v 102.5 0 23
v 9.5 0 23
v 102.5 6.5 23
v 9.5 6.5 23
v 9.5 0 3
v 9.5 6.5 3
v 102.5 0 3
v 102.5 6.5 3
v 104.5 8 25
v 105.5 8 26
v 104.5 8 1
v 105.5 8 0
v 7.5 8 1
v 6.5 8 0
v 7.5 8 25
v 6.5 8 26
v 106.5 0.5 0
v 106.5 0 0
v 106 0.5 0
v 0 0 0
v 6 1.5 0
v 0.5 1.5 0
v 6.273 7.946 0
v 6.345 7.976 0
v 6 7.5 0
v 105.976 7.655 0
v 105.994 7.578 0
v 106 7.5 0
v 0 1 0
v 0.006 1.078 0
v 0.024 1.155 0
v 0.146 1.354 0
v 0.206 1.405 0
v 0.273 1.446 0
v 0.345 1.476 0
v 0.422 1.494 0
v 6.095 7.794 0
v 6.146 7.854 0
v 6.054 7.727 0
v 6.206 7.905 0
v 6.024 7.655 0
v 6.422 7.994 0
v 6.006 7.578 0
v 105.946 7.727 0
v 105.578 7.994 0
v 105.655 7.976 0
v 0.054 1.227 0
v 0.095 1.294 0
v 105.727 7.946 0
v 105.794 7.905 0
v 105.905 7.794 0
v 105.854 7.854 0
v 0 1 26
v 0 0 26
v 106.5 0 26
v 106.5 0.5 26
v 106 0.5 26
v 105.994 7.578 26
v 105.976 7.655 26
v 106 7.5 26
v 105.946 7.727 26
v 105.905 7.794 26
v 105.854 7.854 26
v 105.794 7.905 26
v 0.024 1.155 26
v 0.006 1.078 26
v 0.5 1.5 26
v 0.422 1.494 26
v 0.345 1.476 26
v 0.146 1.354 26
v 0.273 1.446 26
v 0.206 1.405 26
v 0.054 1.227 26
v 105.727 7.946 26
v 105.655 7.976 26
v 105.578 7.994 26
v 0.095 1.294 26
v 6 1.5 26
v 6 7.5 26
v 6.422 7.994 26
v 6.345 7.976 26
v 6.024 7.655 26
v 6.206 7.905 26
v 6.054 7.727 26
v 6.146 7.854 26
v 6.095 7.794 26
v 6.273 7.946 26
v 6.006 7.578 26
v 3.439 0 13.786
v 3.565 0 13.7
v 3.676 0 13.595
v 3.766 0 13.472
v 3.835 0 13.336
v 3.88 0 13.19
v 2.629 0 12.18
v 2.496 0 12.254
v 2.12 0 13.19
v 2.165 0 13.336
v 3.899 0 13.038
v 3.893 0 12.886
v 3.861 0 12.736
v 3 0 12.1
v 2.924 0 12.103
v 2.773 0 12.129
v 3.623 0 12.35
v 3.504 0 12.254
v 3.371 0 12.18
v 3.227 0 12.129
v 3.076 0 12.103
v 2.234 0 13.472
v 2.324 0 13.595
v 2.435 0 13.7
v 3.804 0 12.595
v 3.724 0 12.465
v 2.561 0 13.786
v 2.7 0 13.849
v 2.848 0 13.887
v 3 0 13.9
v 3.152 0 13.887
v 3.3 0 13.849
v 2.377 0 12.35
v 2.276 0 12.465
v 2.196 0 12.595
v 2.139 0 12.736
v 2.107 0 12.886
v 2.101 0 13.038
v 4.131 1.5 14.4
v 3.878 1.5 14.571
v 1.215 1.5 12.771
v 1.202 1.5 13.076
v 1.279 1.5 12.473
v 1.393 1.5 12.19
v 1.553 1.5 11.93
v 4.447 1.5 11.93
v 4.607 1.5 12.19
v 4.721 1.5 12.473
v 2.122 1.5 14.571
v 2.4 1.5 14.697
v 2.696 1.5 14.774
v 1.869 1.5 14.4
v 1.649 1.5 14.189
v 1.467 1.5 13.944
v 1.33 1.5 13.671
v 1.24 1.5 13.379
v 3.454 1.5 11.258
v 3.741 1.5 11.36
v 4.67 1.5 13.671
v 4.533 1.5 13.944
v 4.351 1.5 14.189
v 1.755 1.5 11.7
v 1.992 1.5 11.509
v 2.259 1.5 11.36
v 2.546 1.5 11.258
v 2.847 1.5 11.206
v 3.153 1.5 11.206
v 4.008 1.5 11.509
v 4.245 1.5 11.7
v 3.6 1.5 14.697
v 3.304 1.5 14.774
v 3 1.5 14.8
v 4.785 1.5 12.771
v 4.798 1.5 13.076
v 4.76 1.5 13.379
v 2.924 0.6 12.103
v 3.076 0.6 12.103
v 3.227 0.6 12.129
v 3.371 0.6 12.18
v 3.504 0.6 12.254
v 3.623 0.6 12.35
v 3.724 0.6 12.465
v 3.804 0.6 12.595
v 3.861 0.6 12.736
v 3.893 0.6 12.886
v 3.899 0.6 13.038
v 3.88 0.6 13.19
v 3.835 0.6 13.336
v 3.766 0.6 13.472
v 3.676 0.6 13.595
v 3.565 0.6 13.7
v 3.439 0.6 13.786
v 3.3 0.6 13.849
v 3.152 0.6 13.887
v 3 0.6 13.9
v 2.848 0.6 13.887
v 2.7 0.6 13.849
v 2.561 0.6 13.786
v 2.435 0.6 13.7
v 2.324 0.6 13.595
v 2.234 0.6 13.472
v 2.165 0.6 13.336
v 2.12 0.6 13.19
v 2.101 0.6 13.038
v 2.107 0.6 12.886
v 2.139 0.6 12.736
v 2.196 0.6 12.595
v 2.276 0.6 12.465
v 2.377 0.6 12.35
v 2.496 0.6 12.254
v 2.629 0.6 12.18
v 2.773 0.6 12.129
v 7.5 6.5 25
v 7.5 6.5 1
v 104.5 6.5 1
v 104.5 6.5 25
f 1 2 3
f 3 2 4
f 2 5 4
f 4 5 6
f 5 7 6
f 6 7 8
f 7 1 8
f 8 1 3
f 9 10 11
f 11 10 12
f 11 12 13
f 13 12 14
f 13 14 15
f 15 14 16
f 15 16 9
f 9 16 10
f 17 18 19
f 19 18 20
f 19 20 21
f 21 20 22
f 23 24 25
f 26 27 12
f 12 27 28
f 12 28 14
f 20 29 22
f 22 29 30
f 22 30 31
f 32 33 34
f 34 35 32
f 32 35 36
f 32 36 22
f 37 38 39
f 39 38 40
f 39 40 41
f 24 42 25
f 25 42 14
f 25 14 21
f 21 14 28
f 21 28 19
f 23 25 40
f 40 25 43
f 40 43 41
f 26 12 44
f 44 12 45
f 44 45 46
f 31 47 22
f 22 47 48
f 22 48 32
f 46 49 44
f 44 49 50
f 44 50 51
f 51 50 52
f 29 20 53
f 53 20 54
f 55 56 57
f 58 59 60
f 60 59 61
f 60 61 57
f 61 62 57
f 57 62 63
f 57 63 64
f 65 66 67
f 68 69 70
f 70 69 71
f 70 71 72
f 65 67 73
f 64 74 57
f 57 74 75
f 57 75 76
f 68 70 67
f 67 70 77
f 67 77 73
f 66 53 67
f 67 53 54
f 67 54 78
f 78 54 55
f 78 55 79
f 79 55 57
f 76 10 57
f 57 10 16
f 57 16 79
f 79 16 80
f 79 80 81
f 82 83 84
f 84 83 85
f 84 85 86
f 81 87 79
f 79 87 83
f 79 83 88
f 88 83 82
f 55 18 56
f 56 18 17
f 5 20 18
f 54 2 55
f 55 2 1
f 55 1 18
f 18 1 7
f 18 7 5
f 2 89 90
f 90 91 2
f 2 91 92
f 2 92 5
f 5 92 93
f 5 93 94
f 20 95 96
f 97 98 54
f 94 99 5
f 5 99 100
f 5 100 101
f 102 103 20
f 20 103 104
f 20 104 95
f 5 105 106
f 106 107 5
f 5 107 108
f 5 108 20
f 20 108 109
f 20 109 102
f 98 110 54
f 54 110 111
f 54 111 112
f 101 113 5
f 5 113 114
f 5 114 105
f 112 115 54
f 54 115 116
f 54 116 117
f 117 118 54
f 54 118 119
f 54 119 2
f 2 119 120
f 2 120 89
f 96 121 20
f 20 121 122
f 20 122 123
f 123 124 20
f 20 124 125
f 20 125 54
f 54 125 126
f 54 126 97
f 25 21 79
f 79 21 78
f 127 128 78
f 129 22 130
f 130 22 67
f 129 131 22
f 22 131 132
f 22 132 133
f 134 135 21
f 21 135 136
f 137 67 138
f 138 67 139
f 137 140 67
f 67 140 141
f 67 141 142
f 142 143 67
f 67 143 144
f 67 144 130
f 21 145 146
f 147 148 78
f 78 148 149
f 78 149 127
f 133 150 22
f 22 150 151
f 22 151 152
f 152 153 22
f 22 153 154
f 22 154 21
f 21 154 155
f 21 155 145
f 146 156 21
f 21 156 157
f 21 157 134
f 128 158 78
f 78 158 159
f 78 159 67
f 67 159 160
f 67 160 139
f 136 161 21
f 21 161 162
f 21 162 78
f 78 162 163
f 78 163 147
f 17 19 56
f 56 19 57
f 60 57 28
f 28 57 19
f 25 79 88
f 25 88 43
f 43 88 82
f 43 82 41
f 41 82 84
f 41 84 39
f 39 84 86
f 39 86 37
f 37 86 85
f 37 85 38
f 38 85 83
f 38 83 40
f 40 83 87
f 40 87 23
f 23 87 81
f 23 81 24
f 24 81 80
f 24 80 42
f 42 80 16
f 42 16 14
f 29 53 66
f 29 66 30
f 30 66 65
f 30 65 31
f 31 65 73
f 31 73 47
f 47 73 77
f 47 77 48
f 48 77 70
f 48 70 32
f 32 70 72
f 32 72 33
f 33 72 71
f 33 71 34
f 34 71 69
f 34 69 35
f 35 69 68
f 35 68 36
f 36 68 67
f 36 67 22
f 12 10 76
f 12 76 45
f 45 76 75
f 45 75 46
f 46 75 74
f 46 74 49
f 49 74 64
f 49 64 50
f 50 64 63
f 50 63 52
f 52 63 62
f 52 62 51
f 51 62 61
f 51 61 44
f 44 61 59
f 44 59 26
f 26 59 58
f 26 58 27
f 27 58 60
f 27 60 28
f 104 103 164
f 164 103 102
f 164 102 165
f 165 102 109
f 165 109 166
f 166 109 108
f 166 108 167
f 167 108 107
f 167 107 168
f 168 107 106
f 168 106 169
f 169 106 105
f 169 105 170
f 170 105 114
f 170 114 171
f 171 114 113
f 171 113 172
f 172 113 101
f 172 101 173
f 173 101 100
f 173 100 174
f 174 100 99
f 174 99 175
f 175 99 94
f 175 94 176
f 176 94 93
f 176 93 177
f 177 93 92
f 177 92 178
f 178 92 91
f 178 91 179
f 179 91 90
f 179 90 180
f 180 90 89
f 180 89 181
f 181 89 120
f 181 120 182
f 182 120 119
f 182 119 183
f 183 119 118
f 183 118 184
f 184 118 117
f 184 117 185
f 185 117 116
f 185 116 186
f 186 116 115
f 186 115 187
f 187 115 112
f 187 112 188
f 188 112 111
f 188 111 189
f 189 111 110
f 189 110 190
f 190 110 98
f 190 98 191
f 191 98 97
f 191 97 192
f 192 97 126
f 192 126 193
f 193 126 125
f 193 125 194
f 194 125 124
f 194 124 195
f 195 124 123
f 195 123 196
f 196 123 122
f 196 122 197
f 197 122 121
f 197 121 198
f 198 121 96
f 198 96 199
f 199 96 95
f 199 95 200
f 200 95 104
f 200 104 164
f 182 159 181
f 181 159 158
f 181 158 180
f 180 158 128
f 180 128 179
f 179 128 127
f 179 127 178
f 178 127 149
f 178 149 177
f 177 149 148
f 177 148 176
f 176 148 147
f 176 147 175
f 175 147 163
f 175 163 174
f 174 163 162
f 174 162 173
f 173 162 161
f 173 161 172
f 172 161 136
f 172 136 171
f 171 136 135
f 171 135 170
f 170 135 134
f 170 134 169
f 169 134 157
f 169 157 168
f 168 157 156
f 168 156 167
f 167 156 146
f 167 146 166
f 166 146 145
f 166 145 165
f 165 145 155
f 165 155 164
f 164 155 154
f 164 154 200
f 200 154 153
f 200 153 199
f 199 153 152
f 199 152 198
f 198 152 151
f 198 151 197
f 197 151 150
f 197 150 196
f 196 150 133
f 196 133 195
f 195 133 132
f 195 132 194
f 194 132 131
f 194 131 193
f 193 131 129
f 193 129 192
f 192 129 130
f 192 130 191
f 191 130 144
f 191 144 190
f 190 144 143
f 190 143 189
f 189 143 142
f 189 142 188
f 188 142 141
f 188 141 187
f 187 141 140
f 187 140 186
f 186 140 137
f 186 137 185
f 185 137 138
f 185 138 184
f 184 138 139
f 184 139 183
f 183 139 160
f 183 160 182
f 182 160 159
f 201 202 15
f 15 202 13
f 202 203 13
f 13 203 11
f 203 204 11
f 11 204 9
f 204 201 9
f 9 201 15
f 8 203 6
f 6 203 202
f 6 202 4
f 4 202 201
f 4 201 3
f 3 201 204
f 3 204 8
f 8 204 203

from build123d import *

# Parameters (mm, degrees)
SKETCH1_W                                            = 106.5
SKETCH1_H                                            = 26
BOSS_EXTRUDE1_DEPTH                                  = 8
CUT_EXTRUDE1_START                                   = -26
CUT_EXTRUDE1_OUTLINE_W                               = 6
CUT_EXTRUDE1_OUTLINE_H                               = 6.5
CUT_EXTRUDE1_OUTLINE_W_2                             = 0.5
CUT_EXTRUDE1_OUTLINE_H_2                             = 7.5
CUT_EXTRUDE1_DEPTH                                   = 26
FILLET1_R                                            = 0.5
CSK_FOR_M1_6_COUNTERSUNK_FLAT_HEAD_SCREW_D           = 1.8
CSK_FOR_M1_6_COUNTERSUNK_FLAT_HEAD_SCREW_DEPTH       = 15
CSK_FOR_M1_6_COUNTERSUNK_FLAT_HEAD_SCREW_CSINK_D     = 3.6
CSK_FOR_M1_6_COUNTERSUNK_FLAT_HEAD_SCREW_CSINK_ANGLE = 90
CSK_FOR_M1_6_COUNTERSUNK_FLAT_HEAD_SCREW_TIP         = 0.540774557
SKETCH14_W                                           = 97
SKETCH14_H                                           = 24
CUT_EXTRUDE7_DEPTH                                   = 110.919288571
SKETCH14_3_W                                         = 97
SKETCH14_3_H                                         = 24
BOSS_EXTRUDE3_DEPTH                                  = 1
SKETCH18_W                                           = 97
SKETCH18_H                                           = 24
CUT_EXTRUDE8_DEPTH                                   = 10
SKETCH20_W                                           = 97
SKETCH20_H                                           = 24
SKETCH20_W_2                                         = 93
SKETCH20_H_2                                         = 20
BOSS_EXTRUDE4_DEPTH                                  = 8
SKETCH20_2_W                                         = 97
SKETCH20_2_H                                         = 24
SKETCH20_2_W_2                                       = 93
SKETCH20_2_H_2                                       = 20
CUT_EXTRUDE9_DEPTH                                   = 1.5


# Read off the part's stored shape, not the designer's step: Cut-Extrude1
with BuildPart() as part:
    # Sketch1 → Boss-Extrude1 (new body)
    with BuildSketch(Plane(origin=(0, 0, 0), x_dir=(1, 0, 0), z_dir=(0, 1, 0))):
        with Locations((53.25, -13)):
            Rectangle(SKETCH1_W, SKETCH1_H)
    extrude(amount=BOSS_EXTRUDE1_DEPTH)

    # Cut-Extrude1 outline → Cut-Extrude1 (cut)
    with BuildSketch(Plane.XY.offset(26).offset(CUT_EXTRUDE1_START)):
        with Locations((3, 4.75)):
            Rectangle(CUT_EXTRUDE1_OUTLINE_W, CUT_EXTRUDE1_OUTLINE_H)
        with Locations((106.25, 4.25)):
            Rectangle(CUT_EXTRUDE1_OUTLINE_W_2, CUT_EXTRUDE1_OUTLINE_H_2)
    extrude(amount=CUT_EXTRUDE1_DEPTH, mode=Mode.SUBTRACT)

    # Fillet1
    fillet1_edges = [part.edges().sort_by_distance(p)[0] for p in [
        (106, 8, 13),
        (0, 1.5, 13),
        (6, 8, 13),
    ]]
    fillet(fillet1_edges, radius=FILLET1_R)

    # CSK for M1.6 Countersunk Flat Head Screw1
    with Locations(Plane(origin=(3, 1.5, 13), x_dir=(1, 0, 0), z_dir=(0, 1, 0))):
        with Locations((0, 0)):
            CounterSinkHole(CSK_FOR_M1_6_COUNTERSUNK_FLAT_HEAD_SCREW_D / 2, CSK_FOR_M1_6_COUNTERSUNK_FLAT_HEAD_SCREW_CSINK_D / 2, depth=CSK_FOR_M1_6_COUNTERSUNK_FLAT_HEAD_SCREW_DEPTH, counter_sink_angle=CSK_FOR_M1_6_COUNTERSUNK_FLAT_HEAD_SCREW_CSINK_ANGLE)
            with Locations((0, 0, -(CSK_FOR_M1_6_COUNTERSUNK_FLAT_HEAD_SCREW_DEPTH + CSK_FOR_M1_6_COUNTERSUNK_FLAT_HEAD_SCREW_TIP / 2))):  # 118° drill point
                Cone(0, CSK_FOR_M1_6_COUNTERSUNK_FLAT_HEAD_SCREW_D / 2, CSK_FOR_M1_6_COUNTERSUNK_FLAT_HEAD_SCREW_TIP, mode=Mode.SUBTRACT)

    # Sketch14 → Cut-Extrude7 (cut, through all)
    with BuildSketch(Plane(origin=(0, 8, 0), x_dir=(1, 0, 0), z_dir=(0, 1, 0))):
        with Locations((56, -13)):
            Rectangle(SKETCH14_W, SKETCH14_H)
    extrude(amount=-CUT_EXTRUDE7_DEPTH, mode=Mode.SUBTRACT)

    # Sketch14<3> → Boss-Extrude3 (add)
    with BuildSketch(Plane(origin=(0, 8, 0), x_dir=(1, 0, 0), z_dir=(0, 1, 0))):
        with Locations((56, -13)):
            Rectangle(SKETCH14_3_W, SKETCH14_3_H)
    extrude(amount=-BOSS_EXTRUDE3_DEPTH)

    # Sketch18 → Cut-Extrude8 (cut)
    with BuildSketch(Plane(origin=(0, 0, 0), x_dir=(1, 0, 0), z_dir=(0, 1, 0))):
        with Locations((56, -13)):
            Rectangle(SKETCH18_W, SKETCH18_H)
    extrude(amount=CUT_EXTRUDE8_DEPTH, mode=Mode.SUBTRACT)

    # Sketch20 → Boss-Extrude4 (add)
    with BuildSketch(Plane(origin=(0, 8, 0), x_dir=(1, 0, 0), z_dir=(0, 1, 0))):
        with Locations((56, -13)):
            Rectangle(SKETCH20_W, SKETCH20_H)
        with Locations((56, -13)):
            Rectangle(SKETCH20_W_2, SKETCH20_H_2, mode=Mode.SUBTRACT)
    extrude(amount=-BOSS_EXTRUDE4_DEPTH)

    # Sketch20<2> → Cut-Extrude9 (cut)
    with BuildSketch(Plane(origin=(0, 8, 0), x_dir=(1, 0, 0), z_dir=(0, 1, 0))):
        with Locations((56, -13)):
            Rectangle(SKETCH20_2_W, SKETCH20_2_H)
        with Locations((56, -13)):
            Rectangle(SKETCH20_2_W_2, SKETCH20_2_H_2, mode=Mode.SUBTRACT)
    extrude(amount=-CUT_EXTRUDE9_DEPTH, mode=Mode.SUBTRACT)


solid = part.part
